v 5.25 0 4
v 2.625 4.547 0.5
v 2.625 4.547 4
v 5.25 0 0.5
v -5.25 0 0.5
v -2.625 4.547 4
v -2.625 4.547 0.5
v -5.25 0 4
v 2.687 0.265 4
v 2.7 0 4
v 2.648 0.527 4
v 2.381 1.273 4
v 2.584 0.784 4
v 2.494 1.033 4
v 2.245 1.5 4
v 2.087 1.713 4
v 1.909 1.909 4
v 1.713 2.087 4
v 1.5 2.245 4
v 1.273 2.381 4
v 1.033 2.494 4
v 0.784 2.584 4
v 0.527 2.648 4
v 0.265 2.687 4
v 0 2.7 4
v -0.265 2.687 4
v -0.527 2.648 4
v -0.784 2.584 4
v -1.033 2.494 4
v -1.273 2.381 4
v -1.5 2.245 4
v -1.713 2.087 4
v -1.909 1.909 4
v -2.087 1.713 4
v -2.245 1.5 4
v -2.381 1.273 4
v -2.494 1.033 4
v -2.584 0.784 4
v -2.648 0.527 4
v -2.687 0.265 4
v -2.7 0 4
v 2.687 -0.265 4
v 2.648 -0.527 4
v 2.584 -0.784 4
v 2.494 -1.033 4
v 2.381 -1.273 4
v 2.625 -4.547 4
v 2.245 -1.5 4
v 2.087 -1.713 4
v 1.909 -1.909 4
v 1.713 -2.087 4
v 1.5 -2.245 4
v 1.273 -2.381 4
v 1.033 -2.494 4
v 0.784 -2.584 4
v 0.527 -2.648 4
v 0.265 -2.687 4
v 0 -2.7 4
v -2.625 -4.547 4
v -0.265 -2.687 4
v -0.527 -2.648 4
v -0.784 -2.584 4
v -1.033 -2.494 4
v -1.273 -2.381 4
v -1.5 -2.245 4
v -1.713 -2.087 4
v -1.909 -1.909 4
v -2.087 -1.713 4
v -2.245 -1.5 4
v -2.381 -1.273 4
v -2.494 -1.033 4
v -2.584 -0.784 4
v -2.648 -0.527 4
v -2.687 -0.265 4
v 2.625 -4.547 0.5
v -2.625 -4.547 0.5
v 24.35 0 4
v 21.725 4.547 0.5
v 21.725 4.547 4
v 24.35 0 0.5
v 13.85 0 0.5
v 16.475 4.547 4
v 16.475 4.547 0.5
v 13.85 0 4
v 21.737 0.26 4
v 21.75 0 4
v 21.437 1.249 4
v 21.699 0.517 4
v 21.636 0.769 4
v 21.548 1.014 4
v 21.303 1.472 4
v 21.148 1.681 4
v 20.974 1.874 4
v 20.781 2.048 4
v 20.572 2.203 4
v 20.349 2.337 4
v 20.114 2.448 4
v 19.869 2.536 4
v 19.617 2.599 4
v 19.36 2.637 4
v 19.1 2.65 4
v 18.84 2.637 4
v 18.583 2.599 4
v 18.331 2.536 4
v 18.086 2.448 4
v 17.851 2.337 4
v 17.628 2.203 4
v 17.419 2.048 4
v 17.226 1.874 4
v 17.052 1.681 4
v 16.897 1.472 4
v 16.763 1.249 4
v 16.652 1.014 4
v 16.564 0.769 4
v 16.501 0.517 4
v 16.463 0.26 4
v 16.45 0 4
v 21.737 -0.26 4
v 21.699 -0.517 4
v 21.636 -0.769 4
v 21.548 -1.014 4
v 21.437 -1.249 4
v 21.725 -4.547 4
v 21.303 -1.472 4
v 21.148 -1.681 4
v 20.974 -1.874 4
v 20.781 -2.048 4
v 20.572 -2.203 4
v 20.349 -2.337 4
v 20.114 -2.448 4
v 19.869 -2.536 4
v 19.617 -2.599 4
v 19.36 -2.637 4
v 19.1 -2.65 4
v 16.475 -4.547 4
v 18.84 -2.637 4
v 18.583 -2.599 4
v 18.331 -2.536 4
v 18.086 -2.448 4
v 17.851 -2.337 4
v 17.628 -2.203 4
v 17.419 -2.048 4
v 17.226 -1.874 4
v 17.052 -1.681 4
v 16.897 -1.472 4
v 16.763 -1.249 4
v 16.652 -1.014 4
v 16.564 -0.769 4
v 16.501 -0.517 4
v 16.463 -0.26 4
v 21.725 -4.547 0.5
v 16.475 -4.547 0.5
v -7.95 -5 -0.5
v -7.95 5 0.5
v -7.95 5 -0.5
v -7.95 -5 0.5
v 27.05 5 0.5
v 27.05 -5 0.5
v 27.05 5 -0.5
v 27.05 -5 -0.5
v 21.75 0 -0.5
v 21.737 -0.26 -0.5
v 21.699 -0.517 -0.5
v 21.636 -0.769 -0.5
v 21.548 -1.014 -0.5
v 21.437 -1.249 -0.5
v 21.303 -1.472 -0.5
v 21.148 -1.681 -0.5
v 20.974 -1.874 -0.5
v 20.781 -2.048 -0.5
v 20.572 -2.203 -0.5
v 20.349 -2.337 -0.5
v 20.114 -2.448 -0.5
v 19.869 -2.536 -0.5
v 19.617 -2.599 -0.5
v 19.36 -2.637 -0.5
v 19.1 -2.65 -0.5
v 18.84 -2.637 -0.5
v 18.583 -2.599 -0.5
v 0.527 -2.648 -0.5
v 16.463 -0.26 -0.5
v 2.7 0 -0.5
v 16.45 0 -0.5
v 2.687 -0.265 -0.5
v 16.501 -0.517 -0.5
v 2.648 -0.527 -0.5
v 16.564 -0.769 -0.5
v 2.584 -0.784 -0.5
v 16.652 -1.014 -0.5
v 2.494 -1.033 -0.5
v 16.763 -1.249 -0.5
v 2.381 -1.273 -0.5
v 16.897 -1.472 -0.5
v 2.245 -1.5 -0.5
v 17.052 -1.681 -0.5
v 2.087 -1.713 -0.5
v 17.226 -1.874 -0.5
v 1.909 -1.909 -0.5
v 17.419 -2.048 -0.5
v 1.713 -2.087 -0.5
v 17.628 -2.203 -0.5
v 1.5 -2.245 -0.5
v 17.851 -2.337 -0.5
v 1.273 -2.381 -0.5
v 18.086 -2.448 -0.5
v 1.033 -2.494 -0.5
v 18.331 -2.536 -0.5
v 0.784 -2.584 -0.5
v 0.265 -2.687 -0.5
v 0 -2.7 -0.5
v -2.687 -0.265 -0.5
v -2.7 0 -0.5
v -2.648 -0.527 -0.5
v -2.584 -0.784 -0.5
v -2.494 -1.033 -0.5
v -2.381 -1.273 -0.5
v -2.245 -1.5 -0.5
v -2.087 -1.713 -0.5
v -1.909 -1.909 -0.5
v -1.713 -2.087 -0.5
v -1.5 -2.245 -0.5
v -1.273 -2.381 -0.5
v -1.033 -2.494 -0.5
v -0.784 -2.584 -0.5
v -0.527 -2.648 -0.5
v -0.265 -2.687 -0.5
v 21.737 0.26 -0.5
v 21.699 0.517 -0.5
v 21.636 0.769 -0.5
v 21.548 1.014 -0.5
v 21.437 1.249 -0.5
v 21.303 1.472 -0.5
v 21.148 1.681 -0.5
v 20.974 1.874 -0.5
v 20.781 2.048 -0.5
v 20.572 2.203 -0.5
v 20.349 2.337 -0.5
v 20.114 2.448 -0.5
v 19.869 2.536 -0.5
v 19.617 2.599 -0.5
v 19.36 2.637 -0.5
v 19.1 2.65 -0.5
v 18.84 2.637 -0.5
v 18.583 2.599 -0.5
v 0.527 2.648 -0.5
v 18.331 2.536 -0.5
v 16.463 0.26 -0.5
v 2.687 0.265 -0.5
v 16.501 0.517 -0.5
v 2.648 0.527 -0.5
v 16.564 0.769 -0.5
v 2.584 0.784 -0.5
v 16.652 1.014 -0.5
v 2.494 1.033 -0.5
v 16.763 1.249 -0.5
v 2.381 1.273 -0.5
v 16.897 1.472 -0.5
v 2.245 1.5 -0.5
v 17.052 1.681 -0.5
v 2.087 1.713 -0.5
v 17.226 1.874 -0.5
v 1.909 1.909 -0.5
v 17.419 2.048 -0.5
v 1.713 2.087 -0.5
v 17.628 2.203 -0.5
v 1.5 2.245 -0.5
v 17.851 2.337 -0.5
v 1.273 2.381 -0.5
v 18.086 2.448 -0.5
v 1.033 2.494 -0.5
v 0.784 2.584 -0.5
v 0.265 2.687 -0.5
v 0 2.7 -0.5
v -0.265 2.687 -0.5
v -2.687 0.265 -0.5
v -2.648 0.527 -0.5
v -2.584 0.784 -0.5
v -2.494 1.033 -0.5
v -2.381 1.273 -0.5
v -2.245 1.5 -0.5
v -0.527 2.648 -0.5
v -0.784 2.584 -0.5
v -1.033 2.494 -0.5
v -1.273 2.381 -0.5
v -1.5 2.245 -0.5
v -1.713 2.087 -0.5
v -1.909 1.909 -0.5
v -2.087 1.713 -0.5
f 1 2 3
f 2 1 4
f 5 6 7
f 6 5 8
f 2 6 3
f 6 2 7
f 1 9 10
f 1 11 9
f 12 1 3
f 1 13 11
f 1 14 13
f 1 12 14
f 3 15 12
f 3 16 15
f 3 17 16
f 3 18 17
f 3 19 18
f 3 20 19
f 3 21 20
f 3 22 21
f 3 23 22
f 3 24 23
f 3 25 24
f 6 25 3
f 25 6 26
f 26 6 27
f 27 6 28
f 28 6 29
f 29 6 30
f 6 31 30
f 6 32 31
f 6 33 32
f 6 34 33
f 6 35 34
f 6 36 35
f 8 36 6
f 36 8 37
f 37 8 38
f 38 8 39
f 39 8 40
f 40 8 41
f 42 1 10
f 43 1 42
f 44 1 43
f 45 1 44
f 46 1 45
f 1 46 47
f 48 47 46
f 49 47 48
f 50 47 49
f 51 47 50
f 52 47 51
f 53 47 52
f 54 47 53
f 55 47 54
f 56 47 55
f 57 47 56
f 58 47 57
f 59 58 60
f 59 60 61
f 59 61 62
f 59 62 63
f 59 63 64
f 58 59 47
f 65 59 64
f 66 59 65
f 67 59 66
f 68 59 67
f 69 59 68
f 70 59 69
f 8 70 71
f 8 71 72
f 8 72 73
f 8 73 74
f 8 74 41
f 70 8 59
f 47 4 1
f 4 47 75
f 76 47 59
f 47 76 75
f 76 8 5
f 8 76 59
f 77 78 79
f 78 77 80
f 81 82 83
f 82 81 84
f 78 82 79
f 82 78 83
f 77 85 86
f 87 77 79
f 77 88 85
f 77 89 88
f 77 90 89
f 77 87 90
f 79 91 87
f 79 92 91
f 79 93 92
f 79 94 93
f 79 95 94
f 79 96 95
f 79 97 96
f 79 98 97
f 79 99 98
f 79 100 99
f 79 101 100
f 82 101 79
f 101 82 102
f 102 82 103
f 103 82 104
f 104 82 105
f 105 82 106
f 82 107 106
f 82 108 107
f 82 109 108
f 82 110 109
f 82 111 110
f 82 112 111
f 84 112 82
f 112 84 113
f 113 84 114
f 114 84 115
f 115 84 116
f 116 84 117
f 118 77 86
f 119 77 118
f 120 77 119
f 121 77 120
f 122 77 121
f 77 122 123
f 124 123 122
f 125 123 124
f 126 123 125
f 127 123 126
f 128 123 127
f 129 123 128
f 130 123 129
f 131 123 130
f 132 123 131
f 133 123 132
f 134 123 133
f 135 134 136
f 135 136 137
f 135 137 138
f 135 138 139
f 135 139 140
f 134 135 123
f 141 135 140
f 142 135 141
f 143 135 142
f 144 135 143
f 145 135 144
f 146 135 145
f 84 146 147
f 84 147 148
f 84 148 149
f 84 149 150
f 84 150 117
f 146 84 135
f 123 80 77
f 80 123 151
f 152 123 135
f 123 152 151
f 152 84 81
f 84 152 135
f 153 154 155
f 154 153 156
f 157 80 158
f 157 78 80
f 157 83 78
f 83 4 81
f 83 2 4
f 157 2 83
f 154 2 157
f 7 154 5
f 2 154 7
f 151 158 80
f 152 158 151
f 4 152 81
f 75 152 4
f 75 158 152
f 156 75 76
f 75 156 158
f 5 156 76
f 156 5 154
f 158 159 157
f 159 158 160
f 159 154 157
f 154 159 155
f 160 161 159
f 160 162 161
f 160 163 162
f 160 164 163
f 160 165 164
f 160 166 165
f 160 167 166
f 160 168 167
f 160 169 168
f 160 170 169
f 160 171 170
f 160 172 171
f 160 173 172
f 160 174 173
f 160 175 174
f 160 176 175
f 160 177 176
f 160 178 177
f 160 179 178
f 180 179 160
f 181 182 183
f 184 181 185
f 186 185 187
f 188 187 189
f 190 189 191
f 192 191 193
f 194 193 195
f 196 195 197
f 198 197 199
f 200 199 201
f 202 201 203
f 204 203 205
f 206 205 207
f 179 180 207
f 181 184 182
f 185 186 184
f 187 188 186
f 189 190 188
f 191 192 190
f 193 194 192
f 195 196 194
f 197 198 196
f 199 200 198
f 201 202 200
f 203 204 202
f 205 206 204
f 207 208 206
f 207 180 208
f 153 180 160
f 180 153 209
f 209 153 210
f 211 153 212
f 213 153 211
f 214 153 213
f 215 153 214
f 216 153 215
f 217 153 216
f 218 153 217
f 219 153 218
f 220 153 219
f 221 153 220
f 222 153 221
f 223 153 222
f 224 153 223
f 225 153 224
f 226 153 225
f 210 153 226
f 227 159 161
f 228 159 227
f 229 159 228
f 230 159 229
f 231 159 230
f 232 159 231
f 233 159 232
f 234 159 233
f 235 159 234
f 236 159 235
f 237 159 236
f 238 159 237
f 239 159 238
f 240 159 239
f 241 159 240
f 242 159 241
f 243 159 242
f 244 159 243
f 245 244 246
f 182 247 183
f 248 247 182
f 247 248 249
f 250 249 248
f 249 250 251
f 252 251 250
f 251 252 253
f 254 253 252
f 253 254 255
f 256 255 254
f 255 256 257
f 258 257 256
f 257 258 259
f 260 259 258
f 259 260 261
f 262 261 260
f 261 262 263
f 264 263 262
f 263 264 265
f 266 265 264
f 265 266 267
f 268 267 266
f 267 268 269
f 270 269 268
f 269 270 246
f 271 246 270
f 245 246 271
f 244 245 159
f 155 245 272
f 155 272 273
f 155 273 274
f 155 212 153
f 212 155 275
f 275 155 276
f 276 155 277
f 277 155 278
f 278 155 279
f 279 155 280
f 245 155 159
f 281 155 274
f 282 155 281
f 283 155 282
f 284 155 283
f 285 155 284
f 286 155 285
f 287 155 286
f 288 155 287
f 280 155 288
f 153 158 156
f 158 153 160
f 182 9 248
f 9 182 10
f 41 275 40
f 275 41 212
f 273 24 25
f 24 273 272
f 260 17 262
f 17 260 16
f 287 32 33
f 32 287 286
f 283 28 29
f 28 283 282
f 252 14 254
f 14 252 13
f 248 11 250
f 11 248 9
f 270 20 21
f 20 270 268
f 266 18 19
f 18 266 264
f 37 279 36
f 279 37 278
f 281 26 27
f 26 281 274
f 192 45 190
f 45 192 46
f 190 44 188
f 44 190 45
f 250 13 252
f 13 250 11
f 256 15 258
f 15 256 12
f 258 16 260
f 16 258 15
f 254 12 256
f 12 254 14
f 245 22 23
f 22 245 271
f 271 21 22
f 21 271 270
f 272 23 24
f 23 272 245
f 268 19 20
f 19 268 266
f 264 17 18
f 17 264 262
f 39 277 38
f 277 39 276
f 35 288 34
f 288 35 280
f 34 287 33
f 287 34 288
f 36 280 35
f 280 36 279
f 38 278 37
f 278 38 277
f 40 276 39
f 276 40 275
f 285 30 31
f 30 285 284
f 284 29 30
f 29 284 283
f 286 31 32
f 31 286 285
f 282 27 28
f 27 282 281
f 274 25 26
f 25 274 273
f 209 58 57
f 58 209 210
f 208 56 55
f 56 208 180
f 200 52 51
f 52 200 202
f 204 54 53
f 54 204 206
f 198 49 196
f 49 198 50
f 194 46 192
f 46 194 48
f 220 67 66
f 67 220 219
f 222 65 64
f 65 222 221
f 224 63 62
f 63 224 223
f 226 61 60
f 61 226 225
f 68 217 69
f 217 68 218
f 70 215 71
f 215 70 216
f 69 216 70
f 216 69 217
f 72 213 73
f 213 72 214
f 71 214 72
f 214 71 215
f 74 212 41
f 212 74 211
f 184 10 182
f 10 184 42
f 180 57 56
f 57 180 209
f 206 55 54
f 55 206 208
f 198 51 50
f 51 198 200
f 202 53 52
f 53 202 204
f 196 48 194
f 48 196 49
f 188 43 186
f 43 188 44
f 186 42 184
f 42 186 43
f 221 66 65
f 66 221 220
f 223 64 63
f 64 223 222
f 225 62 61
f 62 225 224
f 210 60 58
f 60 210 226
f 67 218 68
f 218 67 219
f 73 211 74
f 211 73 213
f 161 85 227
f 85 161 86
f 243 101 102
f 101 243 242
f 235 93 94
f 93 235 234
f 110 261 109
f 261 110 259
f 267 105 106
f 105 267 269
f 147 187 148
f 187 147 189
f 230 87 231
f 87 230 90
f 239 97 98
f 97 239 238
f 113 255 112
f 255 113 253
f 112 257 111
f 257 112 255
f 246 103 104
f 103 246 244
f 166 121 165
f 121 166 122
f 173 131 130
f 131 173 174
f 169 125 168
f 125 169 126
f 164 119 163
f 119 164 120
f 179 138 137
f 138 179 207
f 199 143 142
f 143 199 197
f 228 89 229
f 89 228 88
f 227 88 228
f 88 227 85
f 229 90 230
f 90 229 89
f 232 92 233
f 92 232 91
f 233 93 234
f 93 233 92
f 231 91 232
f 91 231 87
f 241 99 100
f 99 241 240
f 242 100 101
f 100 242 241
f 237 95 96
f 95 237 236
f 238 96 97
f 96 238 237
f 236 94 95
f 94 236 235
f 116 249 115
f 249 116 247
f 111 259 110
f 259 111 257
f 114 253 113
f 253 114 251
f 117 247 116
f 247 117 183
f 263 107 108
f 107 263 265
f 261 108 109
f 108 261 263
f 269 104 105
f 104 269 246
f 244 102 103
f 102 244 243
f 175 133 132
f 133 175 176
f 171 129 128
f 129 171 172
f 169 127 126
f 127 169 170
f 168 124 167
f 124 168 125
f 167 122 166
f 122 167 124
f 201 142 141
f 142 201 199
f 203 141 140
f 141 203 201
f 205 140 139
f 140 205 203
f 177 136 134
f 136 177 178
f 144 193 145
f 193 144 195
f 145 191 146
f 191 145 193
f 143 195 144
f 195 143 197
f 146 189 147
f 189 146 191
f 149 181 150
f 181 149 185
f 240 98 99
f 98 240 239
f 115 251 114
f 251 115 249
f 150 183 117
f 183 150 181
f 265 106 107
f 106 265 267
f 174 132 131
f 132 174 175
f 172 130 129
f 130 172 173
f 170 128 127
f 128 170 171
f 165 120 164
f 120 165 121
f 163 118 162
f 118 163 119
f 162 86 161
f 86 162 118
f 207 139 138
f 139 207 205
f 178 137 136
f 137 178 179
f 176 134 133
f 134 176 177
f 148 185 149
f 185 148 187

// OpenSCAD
$fn = $preview ? 16 : 64;

difference()
{
    union()
    {
        cylinder(h=4, d=10.5, $fn=6);
        translate([19.1, 0, 0])
            cylinder(h=4, d=10.5, $fn=6);
           
        translate([19.1/2,0,0])
            cube([35,10,1], center=true);
    }
    
    cylinder(h=100, d=5.4, center=true);
    translate([19.1, 0, 0])
        cylinder(h=100, d=5.3, center=true);
}
